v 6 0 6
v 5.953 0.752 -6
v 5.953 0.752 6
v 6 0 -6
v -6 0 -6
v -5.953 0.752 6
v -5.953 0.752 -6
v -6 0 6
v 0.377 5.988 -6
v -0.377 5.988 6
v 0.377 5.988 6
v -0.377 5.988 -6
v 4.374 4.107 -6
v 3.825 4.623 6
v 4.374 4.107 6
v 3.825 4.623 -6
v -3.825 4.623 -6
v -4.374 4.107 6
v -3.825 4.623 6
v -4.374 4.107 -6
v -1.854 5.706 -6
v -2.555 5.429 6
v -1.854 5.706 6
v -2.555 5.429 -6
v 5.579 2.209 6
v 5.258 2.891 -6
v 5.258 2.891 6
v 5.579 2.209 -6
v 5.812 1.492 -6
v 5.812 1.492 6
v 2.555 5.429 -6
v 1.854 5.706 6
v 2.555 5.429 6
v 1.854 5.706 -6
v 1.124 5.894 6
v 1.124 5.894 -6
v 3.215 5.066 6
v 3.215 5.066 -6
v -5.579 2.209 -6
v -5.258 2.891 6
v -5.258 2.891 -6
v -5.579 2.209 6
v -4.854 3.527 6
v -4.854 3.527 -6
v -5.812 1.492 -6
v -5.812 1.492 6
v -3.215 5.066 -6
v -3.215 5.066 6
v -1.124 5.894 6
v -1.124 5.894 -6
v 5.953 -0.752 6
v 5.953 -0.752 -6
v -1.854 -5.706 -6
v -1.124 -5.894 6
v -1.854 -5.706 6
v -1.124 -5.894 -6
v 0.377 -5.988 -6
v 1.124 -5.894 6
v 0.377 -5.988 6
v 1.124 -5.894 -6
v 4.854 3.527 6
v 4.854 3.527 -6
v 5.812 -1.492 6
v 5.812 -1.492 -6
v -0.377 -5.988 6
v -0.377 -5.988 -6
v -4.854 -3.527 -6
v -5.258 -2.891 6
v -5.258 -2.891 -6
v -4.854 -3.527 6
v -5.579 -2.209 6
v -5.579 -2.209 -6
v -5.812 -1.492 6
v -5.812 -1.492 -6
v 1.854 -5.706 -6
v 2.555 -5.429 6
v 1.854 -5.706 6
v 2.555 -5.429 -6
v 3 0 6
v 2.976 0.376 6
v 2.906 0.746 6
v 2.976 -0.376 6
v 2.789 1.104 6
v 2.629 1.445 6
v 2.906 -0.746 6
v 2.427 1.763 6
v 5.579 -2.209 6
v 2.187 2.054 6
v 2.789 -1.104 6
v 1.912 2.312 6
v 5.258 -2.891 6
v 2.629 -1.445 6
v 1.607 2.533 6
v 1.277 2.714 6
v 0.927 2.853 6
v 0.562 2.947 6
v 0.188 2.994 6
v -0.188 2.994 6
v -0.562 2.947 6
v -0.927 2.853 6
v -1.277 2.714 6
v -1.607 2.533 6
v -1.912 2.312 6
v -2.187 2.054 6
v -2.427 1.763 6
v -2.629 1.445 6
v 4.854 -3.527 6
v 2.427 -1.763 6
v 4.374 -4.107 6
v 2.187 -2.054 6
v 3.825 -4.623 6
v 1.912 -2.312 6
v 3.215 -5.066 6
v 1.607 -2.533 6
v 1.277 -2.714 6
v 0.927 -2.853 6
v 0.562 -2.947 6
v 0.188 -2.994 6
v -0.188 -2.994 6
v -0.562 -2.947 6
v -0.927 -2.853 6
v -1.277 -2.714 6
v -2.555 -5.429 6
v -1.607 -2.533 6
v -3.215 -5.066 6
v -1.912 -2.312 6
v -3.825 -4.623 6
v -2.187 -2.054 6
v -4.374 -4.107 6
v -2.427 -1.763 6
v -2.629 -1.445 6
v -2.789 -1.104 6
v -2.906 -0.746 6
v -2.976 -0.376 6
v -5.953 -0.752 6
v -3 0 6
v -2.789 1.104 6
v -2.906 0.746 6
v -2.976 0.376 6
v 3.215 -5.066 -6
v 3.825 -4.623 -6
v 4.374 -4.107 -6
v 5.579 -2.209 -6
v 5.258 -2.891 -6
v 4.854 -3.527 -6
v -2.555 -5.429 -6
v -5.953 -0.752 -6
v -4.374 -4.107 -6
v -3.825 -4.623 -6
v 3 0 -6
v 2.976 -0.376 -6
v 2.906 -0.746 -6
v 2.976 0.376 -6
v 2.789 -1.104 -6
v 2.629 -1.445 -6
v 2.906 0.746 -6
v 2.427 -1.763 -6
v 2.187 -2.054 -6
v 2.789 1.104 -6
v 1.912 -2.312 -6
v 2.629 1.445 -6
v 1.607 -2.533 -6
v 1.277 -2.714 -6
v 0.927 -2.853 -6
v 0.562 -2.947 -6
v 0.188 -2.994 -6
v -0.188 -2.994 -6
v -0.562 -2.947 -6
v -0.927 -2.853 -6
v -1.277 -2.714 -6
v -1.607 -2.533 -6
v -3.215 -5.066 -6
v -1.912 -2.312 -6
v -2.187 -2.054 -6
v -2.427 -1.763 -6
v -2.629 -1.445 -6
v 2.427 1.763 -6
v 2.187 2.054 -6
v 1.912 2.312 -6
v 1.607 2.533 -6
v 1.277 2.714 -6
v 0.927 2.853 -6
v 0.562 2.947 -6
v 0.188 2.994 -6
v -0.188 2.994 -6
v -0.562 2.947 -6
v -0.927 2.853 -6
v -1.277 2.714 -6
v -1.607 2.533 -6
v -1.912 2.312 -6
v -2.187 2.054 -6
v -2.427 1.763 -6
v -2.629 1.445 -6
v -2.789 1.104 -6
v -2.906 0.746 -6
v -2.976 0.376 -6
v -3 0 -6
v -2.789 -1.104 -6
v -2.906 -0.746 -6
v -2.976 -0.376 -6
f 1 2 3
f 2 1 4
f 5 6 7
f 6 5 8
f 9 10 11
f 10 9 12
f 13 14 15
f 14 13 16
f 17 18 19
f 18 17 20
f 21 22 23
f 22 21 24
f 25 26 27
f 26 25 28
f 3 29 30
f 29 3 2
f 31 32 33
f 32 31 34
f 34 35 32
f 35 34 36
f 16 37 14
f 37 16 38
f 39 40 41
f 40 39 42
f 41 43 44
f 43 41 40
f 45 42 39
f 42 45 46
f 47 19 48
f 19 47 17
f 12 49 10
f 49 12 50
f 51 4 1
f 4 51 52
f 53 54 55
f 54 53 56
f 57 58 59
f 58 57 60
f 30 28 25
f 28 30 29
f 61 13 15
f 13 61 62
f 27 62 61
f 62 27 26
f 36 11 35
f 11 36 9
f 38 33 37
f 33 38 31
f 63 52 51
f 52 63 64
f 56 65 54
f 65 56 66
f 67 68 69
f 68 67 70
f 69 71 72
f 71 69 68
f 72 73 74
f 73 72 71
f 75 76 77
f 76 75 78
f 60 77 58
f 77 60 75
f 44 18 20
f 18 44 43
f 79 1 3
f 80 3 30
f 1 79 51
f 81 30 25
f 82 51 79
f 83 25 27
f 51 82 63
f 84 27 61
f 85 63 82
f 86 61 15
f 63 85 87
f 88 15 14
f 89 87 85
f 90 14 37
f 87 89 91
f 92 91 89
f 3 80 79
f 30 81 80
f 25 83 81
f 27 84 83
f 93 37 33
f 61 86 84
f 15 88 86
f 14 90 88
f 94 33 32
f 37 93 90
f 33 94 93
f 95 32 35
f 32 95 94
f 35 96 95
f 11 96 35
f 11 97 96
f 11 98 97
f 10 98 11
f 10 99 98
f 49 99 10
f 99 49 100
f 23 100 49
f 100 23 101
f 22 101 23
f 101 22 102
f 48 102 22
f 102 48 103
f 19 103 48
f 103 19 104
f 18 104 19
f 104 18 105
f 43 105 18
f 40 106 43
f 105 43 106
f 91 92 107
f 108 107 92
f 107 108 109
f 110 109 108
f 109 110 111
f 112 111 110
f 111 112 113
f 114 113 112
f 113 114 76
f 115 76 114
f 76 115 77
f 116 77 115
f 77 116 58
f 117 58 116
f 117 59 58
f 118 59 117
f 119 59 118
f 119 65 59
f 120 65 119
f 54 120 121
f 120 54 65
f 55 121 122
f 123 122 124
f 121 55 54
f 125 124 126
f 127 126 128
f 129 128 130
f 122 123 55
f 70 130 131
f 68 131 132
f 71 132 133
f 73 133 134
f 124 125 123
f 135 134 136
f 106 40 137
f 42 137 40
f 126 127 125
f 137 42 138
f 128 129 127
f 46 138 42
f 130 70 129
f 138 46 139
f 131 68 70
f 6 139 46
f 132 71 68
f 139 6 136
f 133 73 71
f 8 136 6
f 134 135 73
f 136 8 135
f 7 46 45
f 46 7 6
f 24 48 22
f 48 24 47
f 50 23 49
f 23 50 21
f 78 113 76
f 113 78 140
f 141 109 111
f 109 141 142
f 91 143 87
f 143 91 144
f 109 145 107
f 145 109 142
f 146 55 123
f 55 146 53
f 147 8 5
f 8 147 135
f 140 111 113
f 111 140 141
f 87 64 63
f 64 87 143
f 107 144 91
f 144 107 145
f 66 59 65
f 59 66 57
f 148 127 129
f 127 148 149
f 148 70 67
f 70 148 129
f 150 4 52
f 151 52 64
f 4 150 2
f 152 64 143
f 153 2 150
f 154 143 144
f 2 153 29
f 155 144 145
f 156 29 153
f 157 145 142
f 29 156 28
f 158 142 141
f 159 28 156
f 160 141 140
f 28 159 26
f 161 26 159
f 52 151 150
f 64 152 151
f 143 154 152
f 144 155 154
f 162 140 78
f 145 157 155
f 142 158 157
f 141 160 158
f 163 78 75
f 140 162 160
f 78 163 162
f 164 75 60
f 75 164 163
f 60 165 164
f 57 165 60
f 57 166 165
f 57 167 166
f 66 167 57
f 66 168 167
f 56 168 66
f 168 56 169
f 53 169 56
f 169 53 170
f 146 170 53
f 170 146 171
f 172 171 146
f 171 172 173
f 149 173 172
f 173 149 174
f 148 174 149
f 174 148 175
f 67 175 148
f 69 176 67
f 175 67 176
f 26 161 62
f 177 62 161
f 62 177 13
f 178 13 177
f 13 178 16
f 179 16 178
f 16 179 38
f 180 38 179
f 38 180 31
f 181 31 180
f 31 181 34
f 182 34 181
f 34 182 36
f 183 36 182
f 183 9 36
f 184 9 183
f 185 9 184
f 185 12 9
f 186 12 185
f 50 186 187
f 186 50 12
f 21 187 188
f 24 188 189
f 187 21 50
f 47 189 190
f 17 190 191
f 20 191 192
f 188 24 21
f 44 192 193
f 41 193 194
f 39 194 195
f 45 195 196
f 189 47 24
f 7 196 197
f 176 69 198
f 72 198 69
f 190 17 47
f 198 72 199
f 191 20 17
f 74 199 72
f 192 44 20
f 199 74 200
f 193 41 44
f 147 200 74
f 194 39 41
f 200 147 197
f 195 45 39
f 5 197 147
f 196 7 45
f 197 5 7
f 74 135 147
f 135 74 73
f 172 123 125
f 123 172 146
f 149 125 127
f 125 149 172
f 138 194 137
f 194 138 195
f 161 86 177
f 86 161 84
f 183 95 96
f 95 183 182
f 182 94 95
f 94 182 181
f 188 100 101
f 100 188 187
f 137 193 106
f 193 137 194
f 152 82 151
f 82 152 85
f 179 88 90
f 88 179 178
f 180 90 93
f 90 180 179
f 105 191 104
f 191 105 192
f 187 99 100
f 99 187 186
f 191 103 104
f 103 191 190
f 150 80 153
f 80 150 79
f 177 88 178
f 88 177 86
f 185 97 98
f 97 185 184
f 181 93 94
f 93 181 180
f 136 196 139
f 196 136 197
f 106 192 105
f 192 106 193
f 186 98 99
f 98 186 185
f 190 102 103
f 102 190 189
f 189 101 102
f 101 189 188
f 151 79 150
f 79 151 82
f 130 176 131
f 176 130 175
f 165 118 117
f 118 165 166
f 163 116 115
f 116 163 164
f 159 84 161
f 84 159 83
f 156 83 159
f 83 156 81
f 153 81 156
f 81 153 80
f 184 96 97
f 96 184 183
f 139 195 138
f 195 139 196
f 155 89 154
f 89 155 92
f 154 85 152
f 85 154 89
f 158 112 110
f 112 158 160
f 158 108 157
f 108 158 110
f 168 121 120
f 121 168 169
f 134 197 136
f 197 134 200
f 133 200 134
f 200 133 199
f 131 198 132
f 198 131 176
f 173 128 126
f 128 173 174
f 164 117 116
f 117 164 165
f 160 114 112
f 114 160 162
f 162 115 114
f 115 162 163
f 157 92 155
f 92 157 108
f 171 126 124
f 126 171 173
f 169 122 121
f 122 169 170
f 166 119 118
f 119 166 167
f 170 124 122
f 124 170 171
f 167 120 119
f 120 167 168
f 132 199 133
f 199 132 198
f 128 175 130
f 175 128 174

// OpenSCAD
$fn = 50;


difference() {
	union() {
		translate(v = [0, 0, -6.0000000000]) {
			cylinder(h = 12, r = 6.0000000000);
		}
	}
	union() {
		translate(v = [0, 0, -100.0000000000]) {
			cylinder(h = 200, r = 3.0000000000);
		}
	}
}
